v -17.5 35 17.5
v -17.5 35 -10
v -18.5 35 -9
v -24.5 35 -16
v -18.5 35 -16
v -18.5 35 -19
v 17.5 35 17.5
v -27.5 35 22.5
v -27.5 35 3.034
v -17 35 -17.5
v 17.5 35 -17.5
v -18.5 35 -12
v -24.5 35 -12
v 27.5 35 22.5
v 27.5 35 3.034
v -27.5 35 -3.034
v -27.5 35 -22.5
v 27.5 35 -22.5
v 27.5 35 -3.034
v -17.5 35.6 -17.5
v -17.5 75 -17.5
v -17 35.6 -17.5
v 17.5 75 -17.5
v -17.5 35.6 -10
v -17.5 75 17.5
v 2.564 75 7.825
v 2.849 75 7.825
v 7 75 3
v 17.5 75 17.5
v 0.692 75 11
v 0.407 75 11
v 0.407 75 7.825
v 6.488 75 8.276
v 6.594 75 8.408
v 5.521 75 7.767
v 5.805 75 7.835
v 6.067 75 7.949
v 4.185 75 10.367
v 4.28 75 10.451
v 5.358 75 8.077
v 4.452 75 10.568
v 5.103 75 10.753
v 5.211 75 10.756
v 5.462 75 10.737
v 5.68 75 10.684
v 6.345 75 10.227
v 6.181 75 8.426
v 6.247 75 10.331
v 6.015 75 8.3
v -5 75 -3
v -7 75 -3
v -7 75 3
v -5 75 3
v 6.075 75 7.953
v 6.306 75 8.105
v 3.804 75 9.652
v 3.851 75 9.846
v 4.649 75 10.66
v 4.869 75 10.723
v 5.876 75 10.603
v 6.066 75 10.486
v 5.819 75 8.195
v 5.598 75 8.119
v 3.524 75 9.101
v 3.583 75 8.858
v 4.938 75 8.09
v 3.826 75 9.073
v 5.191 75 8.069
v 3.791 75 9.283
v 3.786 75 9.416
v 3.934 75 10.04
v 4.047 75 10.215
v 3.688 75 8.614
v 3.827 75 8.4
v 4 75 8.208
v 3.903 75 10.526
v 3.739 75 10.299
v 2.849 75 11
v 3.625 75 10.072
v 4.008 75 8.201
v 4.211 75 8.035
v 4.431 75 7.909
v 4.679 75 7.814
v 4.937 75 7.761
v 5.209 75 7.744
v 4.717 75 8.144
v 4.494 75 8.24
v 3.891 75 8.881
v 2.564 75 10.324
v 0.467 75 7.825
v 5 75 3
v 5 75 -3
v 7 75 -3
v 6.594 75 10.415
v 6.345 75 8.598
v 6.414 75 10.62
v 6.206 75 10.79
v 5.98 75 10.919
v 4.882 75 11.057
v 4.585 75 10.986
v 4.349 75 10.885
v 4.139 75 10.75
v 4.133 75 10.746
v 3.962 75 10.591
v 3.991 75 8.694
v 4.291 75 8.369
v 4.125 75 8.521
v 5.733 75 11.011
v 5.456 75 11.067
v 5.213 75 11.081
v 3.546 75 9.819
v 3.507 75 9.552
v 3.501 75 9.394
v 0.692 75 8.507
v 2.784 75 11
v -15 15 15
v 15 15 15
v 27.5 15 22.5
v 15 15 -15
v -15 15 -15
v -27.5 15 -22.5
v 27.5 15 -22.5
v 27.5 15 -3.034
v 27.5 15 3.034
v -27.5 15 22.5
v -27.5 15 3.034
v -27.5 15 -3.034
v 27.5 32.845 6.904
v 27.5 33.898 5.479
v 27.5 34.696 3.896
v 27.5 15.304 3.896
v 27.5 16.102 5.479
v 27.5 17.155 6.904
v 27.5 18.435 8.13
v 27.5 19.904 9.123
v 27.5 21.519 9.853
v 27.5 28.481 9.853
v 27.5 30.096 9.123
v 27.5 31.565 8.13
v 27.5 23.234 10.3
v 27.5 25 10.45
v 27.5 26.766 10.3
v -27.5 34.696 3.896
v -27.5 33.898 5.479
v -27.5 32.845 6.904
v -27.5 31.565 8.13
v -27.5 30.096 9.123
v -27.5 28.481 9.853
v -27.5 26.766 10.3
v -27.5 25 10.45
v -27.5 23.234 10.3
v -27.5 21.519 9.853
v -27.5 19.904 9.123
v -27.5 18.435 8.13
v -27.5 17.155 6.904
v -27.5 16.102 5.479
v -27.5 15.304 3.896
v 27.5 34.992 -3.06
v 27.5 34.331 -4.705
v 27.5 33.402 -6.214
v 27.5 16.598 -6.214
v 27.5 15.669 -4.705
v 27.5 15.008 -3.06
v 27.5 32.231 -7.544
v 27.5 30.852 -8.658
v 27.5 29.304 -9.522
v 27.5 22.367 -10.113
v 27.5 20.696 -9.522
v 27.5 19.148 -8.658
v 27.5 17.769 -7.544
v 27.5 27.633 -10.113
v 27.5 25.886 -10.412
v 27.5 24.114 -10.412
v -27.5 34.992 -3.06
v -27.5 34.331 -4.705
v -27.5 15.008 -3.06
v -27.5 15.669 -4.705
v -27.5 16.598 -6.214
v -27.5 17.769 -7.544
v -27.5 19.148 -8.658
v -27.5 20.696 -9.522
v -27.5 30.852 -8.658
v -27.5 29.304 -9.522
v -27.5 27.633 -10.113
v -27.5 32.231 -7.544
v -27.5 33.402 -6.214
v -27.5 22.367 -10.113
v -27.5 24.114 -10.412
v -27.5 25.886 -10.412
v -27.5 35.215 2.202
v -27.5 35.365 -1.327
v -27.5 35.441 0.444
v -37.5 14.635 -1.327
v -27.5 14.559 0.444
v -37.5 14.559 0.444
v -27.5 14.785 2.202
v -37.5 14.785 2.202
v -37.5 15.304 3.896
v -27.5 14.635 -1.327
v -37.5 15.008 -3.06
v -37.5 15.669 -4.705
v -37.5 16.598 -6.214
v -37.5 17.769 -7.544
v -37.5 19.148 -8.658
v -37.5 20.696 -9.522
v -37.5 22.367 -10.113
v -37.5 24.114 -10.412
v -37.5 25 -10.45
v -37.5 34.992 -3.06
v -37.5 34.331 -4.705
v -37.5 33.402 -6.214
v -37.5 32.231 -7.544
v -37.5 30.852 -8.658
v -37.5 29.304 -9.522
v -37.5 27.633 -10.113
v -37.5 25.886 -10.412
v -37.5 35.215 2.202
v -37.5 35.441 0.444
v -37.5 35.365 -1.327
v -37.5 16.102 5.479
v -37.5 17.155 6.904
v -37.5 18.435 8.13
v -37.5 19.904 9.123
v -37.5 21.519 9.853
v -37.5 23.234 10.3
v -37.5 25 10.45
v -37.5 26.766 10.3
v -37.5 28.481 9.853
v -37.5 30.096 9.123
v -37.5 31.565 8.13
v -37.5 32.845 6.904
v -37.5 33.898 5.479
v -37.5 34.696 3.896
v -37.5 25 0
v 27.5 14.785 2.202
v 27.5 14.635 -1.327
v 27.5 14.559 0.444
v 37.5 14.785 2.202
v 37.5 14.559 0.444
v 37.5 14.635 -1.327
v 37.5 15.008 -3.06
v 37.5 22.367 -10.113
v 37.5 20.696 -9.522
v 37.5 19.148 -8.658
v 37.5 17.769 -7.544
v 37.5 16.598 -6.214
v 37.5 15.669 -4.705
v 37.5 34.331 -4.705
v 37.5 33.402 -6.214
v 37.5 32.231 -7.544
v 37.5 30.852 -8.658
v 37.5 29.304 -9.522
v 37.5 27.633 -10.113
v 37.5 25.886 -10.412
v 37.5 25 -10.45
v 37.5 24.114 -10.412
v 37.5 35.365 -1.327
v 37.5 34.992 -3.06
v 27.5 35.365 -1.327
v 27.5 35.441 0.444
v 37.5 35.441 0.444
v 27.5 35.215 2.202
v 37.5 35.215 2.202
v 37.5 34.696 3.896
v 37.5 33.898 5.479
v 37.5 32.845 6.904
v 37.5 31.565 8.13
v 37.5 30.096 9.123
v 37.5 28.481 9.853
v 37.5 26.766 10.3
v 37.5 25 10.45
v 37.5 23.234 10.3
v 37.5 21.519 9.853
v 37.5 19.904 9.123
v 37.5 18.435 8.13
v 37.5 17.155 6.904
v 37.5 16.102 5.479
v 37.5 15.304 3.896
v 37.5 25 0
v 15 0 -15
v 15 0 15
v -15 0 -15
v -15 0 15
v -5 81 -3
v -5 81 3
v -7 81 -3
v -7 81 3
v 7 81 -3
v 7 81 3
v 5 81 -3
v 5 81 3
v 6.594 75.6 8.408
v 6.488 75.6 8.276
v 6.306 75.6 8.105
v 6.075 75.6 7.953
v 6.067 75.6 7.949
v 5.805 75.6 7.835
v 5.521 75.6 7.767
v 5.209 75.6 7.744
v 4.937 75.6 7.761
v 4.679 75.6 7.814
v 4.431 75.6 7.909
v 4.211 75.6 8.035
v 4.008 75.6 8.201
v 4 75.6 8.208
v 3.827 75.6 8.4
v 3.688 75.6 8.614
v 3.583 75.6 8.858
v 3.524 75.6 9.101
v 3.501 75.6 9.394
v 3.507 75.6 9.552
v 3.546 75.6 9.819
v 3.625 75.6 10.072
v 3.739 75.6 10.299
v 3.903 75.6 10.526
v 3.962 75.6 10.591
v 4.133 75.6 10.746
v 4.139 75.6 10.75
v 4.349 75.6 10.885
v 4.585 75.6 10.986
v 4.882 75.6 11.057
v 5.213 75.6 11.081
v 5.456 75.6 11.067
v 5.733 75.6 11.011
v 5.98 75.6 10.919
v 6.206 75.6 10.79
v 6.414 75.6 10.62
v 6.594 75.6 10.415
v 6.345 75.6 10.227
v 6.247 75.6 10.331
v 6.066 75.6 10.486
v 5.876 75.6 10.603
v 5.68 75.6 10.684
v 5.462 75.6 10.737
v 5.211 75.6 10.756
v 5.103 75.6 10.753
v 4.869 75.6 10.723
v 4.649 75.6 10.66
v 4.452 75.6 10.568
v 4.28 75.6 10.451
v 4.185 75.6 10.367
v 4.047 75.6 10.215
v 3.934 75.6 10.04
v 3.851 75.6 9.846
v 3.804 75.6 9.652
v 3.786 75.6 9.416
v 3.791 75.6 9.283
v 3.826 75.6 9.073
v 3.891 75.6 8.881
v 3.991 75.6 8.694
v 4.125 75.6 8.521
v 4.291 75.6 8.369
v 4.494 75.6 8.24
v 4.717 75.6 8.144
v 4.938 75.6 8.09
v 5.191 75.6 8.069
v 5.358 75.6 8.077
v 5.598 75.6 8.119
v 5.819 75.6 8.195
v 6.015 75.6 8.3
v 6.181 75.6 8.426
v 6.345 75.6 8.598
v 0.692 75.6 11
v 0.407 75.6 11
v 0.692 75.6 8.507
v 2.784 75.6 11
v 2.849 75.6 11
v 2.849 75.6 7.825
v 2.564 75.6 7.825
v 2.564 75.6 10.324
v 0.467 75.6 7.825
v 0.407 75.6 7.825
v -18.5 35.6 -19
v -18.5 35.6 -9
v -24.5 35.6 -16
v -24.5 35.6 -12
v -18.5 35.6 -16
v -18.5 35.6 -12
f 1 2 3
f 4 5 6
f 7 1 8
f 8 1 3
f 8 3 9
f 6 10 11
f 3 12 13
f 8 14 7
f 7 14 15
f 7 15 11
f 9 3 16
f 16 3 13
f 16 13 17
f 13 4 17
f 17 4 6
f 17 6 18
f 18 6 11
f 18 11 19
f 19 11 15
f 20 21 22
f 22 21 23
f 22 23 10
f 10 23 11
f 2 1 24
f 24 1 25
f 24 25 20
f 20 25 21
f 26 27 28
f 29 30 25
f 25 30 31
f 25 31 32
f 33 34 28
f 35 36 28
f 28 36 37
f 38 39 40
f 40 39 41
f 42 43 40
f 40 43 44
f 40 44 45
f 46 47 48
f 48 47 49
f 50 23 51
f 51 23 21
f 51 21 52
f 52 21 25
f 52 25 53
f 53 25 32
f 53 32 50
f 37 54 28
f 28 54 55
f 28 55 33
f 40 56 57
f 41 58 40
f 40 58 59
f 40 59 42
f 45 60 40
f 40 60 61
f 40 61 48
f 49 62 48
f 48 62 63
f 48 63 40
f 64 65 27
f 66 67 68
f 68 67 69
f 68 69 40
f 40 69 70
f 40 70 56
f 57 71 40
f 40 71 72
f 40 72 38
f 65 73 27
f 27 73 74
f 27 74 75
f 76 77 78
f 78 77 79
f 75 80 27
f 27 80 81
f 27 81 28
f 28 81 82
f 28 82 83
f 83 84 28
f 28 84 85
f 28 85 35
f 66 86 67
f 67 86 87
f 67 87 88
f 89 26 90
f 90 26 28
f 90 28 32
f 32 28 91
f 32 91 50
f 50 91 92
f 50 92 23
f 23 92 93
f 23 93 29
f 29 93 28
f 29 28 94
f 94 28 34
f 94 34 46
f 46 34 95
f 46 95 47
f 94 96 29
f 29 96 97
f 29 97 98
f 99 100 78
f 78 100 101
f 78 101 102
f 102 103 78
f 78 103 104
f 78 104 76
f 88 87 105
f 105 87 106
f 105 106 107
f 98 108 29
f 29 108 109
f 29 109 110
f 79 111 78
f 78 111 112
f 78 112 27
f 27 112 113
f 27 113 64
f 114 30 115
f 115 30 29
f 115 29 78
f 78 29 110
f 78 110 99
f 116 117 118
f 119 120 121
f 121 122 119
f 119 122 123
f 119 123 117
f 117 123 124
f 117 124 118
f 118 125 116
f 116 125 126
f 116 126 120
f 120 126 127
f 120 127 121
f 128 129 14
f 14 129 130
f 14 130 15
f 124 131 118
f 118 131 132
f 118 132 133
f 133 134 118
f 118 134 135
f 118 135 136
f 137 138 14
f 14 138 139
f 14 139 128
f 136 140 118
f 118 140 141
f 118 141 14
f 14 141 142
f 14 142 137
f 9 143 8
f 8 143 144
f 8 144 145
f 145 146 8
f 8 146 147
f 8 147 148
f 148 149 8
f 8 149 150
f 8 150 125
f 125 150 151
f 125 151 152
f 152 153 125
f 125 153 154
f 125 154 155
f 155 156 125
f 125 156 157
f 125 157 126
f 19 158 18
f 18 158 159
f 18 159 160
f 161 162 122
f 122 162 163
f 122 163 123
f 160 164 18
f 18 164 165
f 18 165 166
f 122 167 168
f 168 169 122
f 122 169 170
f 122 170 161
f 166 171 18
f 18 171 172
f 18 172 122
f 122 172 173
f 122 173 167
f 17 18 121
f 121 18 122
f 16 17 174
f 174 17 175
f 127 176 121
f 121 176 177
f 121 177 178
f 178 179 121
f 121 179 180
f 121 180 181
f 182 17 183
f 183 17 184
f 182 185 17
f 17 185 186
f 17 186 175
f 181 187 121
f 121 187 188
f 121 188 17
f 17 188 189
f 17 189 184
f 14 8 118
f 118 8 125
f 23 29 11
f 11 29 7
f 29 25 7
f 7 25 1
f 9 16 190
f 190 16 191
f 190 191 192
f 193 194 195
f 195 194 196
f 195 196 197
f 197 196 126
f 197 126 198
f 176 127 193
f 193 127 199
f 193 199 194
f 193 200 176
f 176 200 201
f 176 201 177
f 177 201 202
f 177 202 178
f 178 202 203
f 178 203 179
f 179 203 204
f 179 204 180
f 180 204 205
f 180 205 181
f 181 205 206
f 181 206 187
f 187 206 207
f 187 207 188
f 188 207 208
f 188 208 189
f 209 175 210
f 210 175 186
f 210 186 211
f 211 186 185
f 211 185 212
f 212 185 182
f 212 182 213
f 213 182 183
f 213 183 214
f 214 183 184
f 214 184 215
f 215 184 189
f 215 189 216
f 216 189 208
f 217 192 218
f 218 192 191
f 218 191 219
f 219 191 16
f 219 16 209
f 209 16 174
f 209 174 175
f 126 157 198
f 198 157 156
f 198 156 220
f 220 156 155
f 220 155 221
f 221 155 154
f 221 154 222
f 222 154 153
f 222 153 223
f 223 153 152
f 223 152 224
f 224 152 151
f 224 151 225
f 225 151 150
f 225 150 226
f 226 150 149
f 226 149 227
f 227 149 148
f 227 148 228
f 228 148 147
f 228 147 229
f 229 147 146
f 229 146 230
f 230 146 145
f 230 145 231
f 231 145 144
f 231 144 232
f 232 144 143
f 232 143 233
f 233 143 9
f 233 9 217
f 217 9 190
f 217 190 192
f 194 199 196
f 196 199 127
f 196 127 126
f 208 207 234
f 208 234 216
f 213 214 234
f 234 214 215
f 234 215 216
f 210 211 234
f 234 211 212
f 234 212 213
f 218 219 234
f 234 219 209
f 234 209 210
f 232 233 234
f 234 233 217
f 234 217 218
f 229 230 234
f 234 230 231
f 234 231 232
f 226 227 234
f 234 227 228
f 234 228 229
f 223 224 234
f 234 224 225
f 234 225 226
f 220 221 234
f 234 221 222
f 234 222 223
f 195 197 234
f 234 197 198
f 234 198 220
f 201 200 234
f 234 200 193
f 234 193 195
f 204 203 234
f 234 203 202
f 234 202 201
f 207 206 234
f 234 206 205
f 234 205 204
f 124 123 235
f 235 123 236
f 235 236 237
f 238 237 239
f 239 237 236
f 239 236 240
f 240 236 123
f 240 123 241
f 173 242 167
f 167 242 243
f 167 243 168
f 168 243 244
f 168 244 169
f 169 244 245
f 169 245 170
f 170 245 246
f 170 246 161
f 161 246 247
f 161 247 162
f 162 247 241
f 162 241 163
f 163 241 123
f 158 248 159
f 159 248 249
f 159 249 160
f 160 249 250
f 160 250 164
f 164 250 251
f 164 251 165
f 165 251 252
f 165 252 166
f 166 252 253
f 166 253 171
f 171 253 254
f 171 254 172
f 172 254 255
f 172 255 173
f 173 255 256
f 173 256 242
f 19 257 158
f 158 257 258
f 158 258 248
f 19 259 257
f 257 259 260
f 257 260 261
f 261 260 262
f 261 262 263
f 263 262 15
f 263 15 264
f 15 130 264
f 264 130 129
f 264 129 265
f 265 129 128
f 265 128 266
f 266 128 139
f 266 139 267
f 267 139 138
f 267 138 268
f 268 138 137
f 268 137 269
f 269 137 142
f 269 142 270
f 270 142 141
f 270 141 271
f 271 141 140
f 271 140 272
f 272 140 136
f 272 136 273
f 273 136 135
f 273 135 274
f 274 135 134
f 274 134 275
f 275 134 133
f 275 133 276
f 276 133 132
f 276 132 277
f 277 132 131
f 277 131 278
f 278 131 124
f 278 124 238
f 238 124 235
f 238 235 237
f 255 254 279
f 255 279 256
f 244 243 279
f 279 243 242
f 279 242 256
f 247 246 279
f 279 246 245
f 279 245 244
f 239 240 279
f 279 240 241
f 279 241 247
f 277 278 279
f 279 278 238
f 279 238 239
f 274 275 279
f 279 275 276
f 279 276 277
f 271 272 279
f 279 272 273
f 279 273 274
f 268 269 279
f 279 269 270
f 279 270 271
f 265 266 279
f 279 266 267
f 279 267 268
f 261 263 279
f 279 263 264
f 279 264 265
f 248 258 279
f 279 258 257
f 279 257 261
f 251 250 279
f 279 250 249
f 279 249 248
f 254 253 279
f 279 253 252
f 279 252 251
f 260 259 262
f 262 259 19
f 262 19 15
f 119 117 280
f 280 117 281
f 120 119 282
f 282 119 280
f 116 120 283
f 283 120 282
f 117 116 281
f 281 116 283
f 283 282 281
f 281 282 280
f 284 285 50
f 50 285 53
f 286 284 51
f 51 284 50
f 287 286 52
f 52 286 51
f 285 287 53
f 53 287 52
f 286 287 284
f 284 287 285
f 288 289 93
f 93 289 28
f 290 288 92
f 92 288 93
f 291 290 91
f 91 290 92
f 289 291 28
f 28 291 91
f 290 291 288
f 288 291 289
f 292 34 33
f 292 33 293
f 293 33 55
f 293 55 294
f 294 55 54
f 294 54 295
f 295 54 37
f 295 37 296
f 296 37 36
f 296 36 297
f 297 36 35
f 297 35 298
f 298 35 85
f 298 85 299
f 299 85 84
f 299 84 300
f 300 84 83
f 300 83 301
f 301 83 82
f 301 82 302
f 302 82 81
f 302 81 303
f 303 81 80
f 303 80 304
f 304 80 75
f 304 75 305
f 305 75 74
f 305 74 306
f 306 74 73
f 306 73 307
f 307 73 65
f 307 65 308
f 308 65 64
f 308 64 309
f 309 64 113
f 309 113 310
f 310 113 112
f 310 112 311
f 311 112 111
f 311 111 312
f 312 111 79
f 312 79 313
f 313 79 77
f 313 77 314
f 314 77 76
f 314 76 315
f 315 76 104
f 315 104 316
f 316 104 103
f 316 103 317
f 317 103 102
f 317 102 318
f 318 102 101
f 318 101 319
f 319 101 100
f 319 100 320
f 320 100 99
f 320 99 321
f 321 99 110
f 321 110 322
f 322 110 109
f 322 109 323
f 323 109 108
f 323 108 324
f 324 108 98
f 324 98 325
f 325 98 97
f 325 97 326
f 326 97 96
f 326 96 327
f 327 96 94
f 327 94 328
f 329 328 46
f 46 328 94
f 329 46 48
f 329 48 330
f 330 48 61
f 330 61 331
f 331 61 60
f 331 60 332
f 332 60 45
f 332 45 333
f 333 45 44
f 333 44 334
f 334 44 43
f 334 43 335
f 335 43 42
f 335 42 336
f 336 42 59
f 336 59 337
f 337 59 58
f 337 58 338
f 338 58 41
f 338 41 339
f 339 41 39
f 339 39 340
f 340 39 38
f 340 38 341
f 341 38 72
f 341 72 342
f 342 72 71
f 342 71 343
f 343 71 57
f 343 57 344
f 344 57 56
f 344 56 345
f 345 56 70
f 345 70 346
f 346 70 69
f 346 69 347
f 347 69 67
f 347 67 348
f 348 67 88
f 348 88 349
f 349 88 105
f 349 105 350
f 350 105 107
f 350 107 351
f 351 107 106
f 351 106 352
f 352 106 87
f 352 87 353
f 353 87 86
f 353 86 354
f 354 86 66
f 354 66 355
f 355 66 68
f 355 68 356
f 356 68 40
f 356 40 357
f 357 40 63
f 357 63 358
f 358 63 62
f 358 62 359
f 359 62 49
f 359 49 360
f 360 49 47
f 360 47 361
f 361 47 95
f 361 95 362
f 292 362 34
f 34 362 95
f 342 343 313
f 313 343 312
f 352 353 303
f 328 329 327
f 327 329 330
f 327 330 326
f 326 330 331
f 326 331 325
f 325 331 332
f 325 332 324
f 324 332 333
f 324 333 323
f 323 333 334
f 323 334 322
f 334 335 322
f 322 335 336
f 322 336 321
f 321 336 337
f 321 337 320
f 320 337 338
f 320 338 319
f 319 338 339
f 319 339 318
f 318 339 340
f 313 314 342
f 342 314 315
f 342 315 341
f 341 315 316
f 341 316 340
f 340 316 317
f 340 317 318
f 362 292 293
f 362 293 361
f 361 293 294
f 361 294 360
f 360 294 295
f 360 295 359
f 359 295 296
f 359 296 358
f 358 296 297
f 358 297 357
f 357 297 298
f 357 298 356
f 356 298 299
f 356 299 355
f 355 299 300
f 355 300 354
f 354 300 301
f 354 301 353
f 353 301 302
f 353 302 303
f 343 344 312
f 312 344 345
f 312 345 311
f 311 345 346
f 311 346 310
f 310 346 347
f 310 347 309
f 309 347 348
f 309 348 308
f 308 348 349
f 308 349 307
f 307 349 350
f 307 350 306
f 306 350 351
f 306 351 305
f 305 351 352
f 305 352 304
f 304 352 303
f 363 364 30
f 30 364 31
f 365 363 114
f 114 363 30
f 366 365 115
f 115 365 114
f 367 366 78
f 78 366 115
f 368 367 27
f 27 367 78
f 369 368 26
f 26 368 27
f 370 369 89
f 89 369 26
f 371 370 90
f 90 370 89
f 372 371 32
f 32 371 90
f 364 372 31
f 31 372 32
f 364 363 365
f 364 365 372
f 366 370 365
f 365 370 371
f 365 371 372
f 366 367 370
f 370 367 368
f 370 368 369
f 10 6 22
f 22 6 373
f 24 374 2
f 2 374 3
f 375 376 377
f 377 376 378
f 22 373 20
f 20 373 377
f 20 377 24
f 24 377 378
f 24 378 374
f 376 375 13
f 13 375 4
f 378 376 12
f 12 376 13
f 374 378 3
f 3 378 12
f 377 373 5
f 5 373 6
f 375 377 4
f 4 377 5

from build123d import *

# Parameters (mm, degrees)
VALVE_BODY_START   = 15
SKETCH1_W          = 55
SKETCH1_H          = 45
VALVE_BODY_DEPTH   = 20
COIL_START         = 35
SKETCH2_W          = 35
SKETCH2_H          = 35
COIL_DEPTH         = 40
PORT_IN_G12_START  = -37.5
SKETCH3_R          = 10.45
PORT_IN_G12_DEPTH  = 10
PORT_OUT_G12_START = 27.5
SKETCH4_R          = 10.45
PORT_OUT_G12_DEPTH = 10
SKETCH5_W          = 30
SKETCH5_H          = 30
MOUNT_FOOT_DEPTH   = 15
SPADE_1_START      = 75
SKETCH6_W          = 2
SKETCH6_H          = 6
SPADE_1_DEPTH      = 6
SPADE_2_START      = 75
SKETCH7_W          = 2
SKETCH7_H          = 6
SPADE_2_DEPTH      = 6
LABEL_NC_START     = 75
LABEL_NC_DEPTH     = 0.6
FLOW_ARROW_START   = 35
FLOW_ARROW_DEPTH   = 0.6


# Read off the part's stored shape, not the designer's step: Label_NC
with BuildPart() as part:
    # Sketch1 → Valve_Body (new body)
    with BuildSketch(Plane(origin=(0, 0, 0), x_dir=(1, 0, 0), z_dir=(0, 1, 0)).offset(VALVE_BODY_START)):
        Rectangle(SKETCH1_W, SKETCH1_H)
    extrude(amount=VALVE_BODY_DEPTH)

    # Sketch2 → Coil (add)
    with BuildSketch(Plane(origin=(0, 0, 0), x_dir=(1, 0, 0), z_dir=(0, 1, 0)).offset(COIL_START)):
        Rectangle(SKETCH2_W, SKETCH2_H)
    extrude(amount=COIL_DEPTH)

    # Sketch3 → Port_In_G12 (add)
    with BuildSketch(Plane(origin=(0, 0, 0), x_dir=(0, 0, -1), z_dir=(1, 0, 0)).offset(PORT_IN_G12_START)):
        with Locations(Location((0, 25, 0), (0, 0, 253.124499321))):
            Circle(SKETCH3_R)
    extrude(amount=PORT_IN_G12_DEPTH)

    # Sketch4 → Port_Out_G12 (add)
    with BuildSketch(Plane(origin=(0, 0, 0), x_dir=(0, 0, -1), z_dir=(1, 0, 0)).offset(PORT_OUT_G12_START)):
        with Locations(Location((0, 25, 0), (0, 0, 253.124499321))):
            Circle(SKETCH4_R)
    extrude(amount=PORT_OUT_G12_DEPTH)

    # Sketch5 → Mount_Foot (add)
    with BuildSketch(Plane(origin=(0, 0, 0), x_dir=(1, 0, 0), z_dir=(0, 1, 0))):
        Rectangle(SKETCH5_W, SKETCH5_H)
    extrude(amount=MOUNT_FOOT_DEPTH)

    # Sketch6 → Spade_1 (add)
    with BuildSketch(Plane(origin=(0, 0, 0), x_dir=(1, 0, 0), z_dir=(0, 1, 0)).offset(SPADE_1_START)):
        with Locations((-6, 0)):
            Rectangle(SKETCH6_W, SKETCH6_H)
    extrude(amount=SPADE_1_DEPTH)

    # Sketch7 → Spade_2 (add)
    with BuildSketch(Plane(origin=(0, 0, 0), x_dir=(1, 0, 0), z_dir=(0, 1, 0)).offset(SPADE_2_START)):
        with Locations((6, 0)):
            Rectangle(SKETCH7_W, SKETCH7_H)
    extrude(amount=SPADE_2_DEPTH)

    # Label_NC outline → Label_NC (add)
    with BuildSketch(Plane(origin=(0, 0, 0), x_dir=(1, 0, 0), z_dir=(0, 1, 0)).offset(LABEL_NC_START)):
        with BuildLine():
            add(Edge.make_bspline(
                [(5.208984375, -7.743589744), (5.245464646, -7.744027112), (5.317673669, -7.744892838), (5.424492146, -7.753334838), (5.528489114, -7.767407896), (5.629736219, -7.786563187), (5.728726021, -7.810336972), (5.824701954, -7.8413071), (5.918227191, -7.87671881), (6.008711886, -7.917502561), (6.0957219, -7.963283105), (6.179230132, -8.013552993), (6.258573253, -8.068249902), (6.334309566, -8.12690864), (6.405172129, -8.19077019), (6.473172899, -8.258078009), (6.536002591, -8.330770835), (6.574785846, -8.381938168), (6.594230769, -8.407592147)],
                knots=[0, 0, 0, 0, 0.068547537, 0.135682946, 0.20121499, 0.265682235, 0.329266835, 0.392395428, 0.455069762, 0.51712685, 0.578790035, 0.639739863, 0.700191504, 0.759806243, 0.819628319, 0.879354791, 0.939511608, 1, 1, 1, 1], degree=3))
            add(Edge.make_bspline(
                [(3.500641026, -9.394055489), (3.502051808, -9.336945899), (3.504827435, -9.224586346), (3.528409335, -9.059691402), (3.566344958, -8.901711205), (3.620226421, -8.750940665), (3.688539133, -8.606586768), (3.772927561, -8.469752247), (3.872411326, -8.339562007), (3.98621019, -8.217991482), (4.111003416, -8.106830784), (4.244642626, -8.009035156), (4.386866249, -7.927648553), (4.536107443, -7.85961632), (4.69348374, -7.807324557), (4.858659368, -7.770718451), (5.031323955, -7.747933639), (5.149127727, -7.745053272), (5.208984375, -7.743589744)],
                knots=[0, 0, 0, 0, 0.064557846, 0.127013532, 0.18795481, 0.248013913, 0.307747682, 0.368234515, 0.429469844, 0.492743437, 0.556257769, 0.618216786, 0.679655476, 0.741245546, 0.803415265, 0.866815462, 0.932328312, 1, 1, 1, 1], degree=3))
            add(Edge.make_bspline(
                [(3.903240184, -10.526166867), (3.871094993, -10.486668788), (3.807192697, -10.408149487), (3.725435826, -10.280890061), (3.655451973, -10.148022472), (3.598868102, -10.008848679), (3.554633337, -9.863680978), (3.523988967, -9.71244619), (3.504075726, -9.555285556), (3.501798535, -9.448390755), (3.500641026, -9.394055489)],
                knots=[0, 0, 0, 0, 0.12432851, 0.247156016, 0.368779749, 0.490733862, 0.613613772, 0.738957576, 0.867310575, 1, 1, 1, 1], degree=3))
            add(Edge.make_bspline(
                [(5.212800481, -11.081410256), (5.178652297, -11.081172592), (5.111128492, -11.080702639), (5.011434625, -11.073089745), (4.914379791, -11.062703197), (4.82024138, -11.047063936), (4.728505674, -11.028608713), (4.640004287, -11.003869787), (4.553866346, -10.976157329), (4.470437923, -10.943586377), (4.389648052, -10.906832411), (4.311757309, -10.865292926), (4.236801517, -10.819317234), (4.164043742, -10.76991876), (4.094558791, -10.715510779), (4.027744522, -10.656848904), (3.963226276, -10.594130851), (3.923309554, -10.548905377), (3.903240184, -10.526166867)],
                knots=[0, 0, 0, 0, 0.069662801, 0.137749562, 0.203916744, 0.268779862, 0.332413706, 0.39475354, 0.456180032, 0.516995649, 0.577395938, 0.637198344, 0.696999184, 0.756756194, 0.816553905, 0.876947997, 0.938131788, 1, 1, 1, 1], degree=3))
            add(Edge.make_bspline(
                [(6.594230769, -10.4154998), (6.574166484, -10.441388252), (6.53413402, -10.493041154), (6.46931139, -10.565859062), (6.401024128, -10.634352008), (6.328765019, -10.697967779), (6.253365308, -10.75797933), (6.173471139, -10.812681706), (6.090132803, -10.862838436), (6.003632668, -10.908764289), (5.914062641, -10.949510649), (5.821530046, -10.98439371), (5.726433738, -11.014442717), (5.62876937, -11.039164117), (5.528334362, -11.058460028), (5.425491146, -11.071359305), (5.32001776, -11.080196613), (5.248860185, -11.081002079), (5.212800481, -11.081410256)],
                knots=[0, 0, 0, 0, 0.061674239, 0.123053062, 0.183475001, 0.243726501, 0.304278917, 0.364862921, 0.425946204, 0.48739123, 0.549220384, 0.611143589, 0.67352853, 0.736961457, 0.800785283, 0.866012596, 0.932100748, 1, 1, 1, 1], degree=3))
            Line((6.594230769, -10.4154998), (6.344911859, -10.226602564))
            add(Edge.make_bspline(
                [(5.210892428, -10.755769231), (5.266321296, -10.754237266), (5.375418567, -10.751221994), (5.535409563, -10.725677532), (5.688567722, -10.684259278), (5.834901282, -10.626294734), (5.973997711, -10.550942652), (6.106074682, -10.459595291), (6.231243678, -10.351383732), (6.306510484, -10.268758323), (6.344911859, -10.226602564)],
                knots=[0, 0, 0, 0, 0.12851519, 0.252948636, 0.374754734, 0.495939754, 0.617180641, 0.740909469, 0.867811148, 1, 1, 1, 1], degree=3))
            add(Edge.make_bspline(
                [(3.785576923, -9.415680088), (3.786721573, -9.462607785), (3.788968942, -9.554744095), (3.808969931, -9.689700291), (3.839363835, -9.818986903), (3.884916537, -9.941795759), (3.941085961, -10.059641199), (4.012061373, -10.170529301), (4.094263518, -10.276135756), (4.188855313, -10.373964716), (4.292637731, -10.463330738), (4.403987623, -10.542025909), (4.522627655, -10.607625838), (4.647247884, -10.662214018), (4.778807287, -10.704175478), (4.917069287, -10.73371579), (5.061733168, -10.752985482), (5.160583981, -10.754830328), (5.210892428, -10.755769231)],
                knots=[0, 0, 0, 0, 0.064323217, 0.126290104, 0.186726469, 0.246146432, 0.305575643, 0.365429386, 0.426326309, 0.488839906, 0.551724972, 0.613918596, 0.675483766, 0.737333897, 0.800229044, 0.864502298, 0.931040739, 1, 1, 1, 1], degree=3))
            add(Edge.make_bspline(
                [(5.191175881, -8.069230769), (5.159350317, -8.069597221), (5.095994559, -8.070326723), (5.001970587, -8.079950715), (4.909702319, -8.093477313), (4.819249775, -8.113548142), (4.730728091, -8.138923304), (4.643558555, -8.169244929), (4.559003225, -8.206759677), (4.475892395, -8.248223598), (4.39626411, -8.295057066), (4.320921317, -8.346141321), (4.250138803, -8.400904716), (4.183860577, -8.459552505), (4.122018881, -8.521820569), (4.06506182, -8.588372508), (4.013186484, -8.658995551), (3.965364611, -8.732758427), (3.922535917, -8.809446281), (3.886676669, -8.889342952), (3.854922023, -8.971080246), (3.829794853, -9.055581656), (3.809906184, -9.142252594), (3.796183232, -9.231325666), (3.78666869, -9.322614789), (3.785942816, -9.38449038), (3.785576923, -9.415680088)],
                knots=[0, 0, 0, 0, 0.043954909, 0.087501875, 0.130462627, 0.172752021, 0.215403067, 0.25764983, 0.300152749, 0.34312149, 0.385925163, 0.427685727, 0.46881795, 0.5094918, 0.549883031, 0.589980023, 0.63040523, 0.670868626, 0.711383944, 0.751627258, 0.791775577, 0.832458919, 0.873319045, 0.914542956, 0.956923558, 1, 1, 1, 1], degree=3))
            add(Edge.make_bspline(
                [(6.344911859, -8.598397436), (6.327126517, -8.577201163), (6.291795619, -8.53509439), (6.234954771, -8.475967232), (6.175716852, -8.420572316), (6.114104507, -8.368645754), (6.049008734, -8.322003402), (5.982006438, -8.278214616), (5.911976783, -8.238964596), (5.815137709, -8.191373173), (5.688457161, -8.14171059), (5.528986128, -8.100069801), (5.362515346, -8.07356202), (5.248943238, -8.070691057), (5.191175881, -8.069230769)],
                knots=[0, 0, 0, 0, 0.063163259, 0.125474941, 0.18712122, 0.248294346, 0.309294856, 0.369850066, 0.430973376, 0.49245599, 0.616147966, 0.740843698, 0.868182649, 1, 1, 1, 1], degree=3))
            Line((6.344911859, -8.598397436), (6.594230769, -8.407592147))
        make_face()
        Polygon((0.407051282, -7.825), (0.407051282, -11), (0.691987179, -11), (0.691987179, -8.506810897), (2.784485176, -11), (2.849358974, -11), (2.849358974, -7.825), (2.564423077, -7.825), (2.564423077, -10.323913261), (0.466836939, -7.825), align=None)
    extrude(amount=LABEL_NC_DEPTH)

    # Sketch9 → Flow_Arrow (add)
    with BuildSketch(Plane(origin=(0, 0, 0), x_dir=(1, 0, 0), z_dir=(0, 1, 0)).offset(FLOW_ARROW_START)):
        Polygon((-24.5, 16), (-18.5, 16), (-18.5, 19), (-13.5, 14), (-18.5, 9), (-18.5, 12), (-24.5, 12), align=None)
    extrude(amount=FLOW_ARROW_DEPTH)


solid = part.part
